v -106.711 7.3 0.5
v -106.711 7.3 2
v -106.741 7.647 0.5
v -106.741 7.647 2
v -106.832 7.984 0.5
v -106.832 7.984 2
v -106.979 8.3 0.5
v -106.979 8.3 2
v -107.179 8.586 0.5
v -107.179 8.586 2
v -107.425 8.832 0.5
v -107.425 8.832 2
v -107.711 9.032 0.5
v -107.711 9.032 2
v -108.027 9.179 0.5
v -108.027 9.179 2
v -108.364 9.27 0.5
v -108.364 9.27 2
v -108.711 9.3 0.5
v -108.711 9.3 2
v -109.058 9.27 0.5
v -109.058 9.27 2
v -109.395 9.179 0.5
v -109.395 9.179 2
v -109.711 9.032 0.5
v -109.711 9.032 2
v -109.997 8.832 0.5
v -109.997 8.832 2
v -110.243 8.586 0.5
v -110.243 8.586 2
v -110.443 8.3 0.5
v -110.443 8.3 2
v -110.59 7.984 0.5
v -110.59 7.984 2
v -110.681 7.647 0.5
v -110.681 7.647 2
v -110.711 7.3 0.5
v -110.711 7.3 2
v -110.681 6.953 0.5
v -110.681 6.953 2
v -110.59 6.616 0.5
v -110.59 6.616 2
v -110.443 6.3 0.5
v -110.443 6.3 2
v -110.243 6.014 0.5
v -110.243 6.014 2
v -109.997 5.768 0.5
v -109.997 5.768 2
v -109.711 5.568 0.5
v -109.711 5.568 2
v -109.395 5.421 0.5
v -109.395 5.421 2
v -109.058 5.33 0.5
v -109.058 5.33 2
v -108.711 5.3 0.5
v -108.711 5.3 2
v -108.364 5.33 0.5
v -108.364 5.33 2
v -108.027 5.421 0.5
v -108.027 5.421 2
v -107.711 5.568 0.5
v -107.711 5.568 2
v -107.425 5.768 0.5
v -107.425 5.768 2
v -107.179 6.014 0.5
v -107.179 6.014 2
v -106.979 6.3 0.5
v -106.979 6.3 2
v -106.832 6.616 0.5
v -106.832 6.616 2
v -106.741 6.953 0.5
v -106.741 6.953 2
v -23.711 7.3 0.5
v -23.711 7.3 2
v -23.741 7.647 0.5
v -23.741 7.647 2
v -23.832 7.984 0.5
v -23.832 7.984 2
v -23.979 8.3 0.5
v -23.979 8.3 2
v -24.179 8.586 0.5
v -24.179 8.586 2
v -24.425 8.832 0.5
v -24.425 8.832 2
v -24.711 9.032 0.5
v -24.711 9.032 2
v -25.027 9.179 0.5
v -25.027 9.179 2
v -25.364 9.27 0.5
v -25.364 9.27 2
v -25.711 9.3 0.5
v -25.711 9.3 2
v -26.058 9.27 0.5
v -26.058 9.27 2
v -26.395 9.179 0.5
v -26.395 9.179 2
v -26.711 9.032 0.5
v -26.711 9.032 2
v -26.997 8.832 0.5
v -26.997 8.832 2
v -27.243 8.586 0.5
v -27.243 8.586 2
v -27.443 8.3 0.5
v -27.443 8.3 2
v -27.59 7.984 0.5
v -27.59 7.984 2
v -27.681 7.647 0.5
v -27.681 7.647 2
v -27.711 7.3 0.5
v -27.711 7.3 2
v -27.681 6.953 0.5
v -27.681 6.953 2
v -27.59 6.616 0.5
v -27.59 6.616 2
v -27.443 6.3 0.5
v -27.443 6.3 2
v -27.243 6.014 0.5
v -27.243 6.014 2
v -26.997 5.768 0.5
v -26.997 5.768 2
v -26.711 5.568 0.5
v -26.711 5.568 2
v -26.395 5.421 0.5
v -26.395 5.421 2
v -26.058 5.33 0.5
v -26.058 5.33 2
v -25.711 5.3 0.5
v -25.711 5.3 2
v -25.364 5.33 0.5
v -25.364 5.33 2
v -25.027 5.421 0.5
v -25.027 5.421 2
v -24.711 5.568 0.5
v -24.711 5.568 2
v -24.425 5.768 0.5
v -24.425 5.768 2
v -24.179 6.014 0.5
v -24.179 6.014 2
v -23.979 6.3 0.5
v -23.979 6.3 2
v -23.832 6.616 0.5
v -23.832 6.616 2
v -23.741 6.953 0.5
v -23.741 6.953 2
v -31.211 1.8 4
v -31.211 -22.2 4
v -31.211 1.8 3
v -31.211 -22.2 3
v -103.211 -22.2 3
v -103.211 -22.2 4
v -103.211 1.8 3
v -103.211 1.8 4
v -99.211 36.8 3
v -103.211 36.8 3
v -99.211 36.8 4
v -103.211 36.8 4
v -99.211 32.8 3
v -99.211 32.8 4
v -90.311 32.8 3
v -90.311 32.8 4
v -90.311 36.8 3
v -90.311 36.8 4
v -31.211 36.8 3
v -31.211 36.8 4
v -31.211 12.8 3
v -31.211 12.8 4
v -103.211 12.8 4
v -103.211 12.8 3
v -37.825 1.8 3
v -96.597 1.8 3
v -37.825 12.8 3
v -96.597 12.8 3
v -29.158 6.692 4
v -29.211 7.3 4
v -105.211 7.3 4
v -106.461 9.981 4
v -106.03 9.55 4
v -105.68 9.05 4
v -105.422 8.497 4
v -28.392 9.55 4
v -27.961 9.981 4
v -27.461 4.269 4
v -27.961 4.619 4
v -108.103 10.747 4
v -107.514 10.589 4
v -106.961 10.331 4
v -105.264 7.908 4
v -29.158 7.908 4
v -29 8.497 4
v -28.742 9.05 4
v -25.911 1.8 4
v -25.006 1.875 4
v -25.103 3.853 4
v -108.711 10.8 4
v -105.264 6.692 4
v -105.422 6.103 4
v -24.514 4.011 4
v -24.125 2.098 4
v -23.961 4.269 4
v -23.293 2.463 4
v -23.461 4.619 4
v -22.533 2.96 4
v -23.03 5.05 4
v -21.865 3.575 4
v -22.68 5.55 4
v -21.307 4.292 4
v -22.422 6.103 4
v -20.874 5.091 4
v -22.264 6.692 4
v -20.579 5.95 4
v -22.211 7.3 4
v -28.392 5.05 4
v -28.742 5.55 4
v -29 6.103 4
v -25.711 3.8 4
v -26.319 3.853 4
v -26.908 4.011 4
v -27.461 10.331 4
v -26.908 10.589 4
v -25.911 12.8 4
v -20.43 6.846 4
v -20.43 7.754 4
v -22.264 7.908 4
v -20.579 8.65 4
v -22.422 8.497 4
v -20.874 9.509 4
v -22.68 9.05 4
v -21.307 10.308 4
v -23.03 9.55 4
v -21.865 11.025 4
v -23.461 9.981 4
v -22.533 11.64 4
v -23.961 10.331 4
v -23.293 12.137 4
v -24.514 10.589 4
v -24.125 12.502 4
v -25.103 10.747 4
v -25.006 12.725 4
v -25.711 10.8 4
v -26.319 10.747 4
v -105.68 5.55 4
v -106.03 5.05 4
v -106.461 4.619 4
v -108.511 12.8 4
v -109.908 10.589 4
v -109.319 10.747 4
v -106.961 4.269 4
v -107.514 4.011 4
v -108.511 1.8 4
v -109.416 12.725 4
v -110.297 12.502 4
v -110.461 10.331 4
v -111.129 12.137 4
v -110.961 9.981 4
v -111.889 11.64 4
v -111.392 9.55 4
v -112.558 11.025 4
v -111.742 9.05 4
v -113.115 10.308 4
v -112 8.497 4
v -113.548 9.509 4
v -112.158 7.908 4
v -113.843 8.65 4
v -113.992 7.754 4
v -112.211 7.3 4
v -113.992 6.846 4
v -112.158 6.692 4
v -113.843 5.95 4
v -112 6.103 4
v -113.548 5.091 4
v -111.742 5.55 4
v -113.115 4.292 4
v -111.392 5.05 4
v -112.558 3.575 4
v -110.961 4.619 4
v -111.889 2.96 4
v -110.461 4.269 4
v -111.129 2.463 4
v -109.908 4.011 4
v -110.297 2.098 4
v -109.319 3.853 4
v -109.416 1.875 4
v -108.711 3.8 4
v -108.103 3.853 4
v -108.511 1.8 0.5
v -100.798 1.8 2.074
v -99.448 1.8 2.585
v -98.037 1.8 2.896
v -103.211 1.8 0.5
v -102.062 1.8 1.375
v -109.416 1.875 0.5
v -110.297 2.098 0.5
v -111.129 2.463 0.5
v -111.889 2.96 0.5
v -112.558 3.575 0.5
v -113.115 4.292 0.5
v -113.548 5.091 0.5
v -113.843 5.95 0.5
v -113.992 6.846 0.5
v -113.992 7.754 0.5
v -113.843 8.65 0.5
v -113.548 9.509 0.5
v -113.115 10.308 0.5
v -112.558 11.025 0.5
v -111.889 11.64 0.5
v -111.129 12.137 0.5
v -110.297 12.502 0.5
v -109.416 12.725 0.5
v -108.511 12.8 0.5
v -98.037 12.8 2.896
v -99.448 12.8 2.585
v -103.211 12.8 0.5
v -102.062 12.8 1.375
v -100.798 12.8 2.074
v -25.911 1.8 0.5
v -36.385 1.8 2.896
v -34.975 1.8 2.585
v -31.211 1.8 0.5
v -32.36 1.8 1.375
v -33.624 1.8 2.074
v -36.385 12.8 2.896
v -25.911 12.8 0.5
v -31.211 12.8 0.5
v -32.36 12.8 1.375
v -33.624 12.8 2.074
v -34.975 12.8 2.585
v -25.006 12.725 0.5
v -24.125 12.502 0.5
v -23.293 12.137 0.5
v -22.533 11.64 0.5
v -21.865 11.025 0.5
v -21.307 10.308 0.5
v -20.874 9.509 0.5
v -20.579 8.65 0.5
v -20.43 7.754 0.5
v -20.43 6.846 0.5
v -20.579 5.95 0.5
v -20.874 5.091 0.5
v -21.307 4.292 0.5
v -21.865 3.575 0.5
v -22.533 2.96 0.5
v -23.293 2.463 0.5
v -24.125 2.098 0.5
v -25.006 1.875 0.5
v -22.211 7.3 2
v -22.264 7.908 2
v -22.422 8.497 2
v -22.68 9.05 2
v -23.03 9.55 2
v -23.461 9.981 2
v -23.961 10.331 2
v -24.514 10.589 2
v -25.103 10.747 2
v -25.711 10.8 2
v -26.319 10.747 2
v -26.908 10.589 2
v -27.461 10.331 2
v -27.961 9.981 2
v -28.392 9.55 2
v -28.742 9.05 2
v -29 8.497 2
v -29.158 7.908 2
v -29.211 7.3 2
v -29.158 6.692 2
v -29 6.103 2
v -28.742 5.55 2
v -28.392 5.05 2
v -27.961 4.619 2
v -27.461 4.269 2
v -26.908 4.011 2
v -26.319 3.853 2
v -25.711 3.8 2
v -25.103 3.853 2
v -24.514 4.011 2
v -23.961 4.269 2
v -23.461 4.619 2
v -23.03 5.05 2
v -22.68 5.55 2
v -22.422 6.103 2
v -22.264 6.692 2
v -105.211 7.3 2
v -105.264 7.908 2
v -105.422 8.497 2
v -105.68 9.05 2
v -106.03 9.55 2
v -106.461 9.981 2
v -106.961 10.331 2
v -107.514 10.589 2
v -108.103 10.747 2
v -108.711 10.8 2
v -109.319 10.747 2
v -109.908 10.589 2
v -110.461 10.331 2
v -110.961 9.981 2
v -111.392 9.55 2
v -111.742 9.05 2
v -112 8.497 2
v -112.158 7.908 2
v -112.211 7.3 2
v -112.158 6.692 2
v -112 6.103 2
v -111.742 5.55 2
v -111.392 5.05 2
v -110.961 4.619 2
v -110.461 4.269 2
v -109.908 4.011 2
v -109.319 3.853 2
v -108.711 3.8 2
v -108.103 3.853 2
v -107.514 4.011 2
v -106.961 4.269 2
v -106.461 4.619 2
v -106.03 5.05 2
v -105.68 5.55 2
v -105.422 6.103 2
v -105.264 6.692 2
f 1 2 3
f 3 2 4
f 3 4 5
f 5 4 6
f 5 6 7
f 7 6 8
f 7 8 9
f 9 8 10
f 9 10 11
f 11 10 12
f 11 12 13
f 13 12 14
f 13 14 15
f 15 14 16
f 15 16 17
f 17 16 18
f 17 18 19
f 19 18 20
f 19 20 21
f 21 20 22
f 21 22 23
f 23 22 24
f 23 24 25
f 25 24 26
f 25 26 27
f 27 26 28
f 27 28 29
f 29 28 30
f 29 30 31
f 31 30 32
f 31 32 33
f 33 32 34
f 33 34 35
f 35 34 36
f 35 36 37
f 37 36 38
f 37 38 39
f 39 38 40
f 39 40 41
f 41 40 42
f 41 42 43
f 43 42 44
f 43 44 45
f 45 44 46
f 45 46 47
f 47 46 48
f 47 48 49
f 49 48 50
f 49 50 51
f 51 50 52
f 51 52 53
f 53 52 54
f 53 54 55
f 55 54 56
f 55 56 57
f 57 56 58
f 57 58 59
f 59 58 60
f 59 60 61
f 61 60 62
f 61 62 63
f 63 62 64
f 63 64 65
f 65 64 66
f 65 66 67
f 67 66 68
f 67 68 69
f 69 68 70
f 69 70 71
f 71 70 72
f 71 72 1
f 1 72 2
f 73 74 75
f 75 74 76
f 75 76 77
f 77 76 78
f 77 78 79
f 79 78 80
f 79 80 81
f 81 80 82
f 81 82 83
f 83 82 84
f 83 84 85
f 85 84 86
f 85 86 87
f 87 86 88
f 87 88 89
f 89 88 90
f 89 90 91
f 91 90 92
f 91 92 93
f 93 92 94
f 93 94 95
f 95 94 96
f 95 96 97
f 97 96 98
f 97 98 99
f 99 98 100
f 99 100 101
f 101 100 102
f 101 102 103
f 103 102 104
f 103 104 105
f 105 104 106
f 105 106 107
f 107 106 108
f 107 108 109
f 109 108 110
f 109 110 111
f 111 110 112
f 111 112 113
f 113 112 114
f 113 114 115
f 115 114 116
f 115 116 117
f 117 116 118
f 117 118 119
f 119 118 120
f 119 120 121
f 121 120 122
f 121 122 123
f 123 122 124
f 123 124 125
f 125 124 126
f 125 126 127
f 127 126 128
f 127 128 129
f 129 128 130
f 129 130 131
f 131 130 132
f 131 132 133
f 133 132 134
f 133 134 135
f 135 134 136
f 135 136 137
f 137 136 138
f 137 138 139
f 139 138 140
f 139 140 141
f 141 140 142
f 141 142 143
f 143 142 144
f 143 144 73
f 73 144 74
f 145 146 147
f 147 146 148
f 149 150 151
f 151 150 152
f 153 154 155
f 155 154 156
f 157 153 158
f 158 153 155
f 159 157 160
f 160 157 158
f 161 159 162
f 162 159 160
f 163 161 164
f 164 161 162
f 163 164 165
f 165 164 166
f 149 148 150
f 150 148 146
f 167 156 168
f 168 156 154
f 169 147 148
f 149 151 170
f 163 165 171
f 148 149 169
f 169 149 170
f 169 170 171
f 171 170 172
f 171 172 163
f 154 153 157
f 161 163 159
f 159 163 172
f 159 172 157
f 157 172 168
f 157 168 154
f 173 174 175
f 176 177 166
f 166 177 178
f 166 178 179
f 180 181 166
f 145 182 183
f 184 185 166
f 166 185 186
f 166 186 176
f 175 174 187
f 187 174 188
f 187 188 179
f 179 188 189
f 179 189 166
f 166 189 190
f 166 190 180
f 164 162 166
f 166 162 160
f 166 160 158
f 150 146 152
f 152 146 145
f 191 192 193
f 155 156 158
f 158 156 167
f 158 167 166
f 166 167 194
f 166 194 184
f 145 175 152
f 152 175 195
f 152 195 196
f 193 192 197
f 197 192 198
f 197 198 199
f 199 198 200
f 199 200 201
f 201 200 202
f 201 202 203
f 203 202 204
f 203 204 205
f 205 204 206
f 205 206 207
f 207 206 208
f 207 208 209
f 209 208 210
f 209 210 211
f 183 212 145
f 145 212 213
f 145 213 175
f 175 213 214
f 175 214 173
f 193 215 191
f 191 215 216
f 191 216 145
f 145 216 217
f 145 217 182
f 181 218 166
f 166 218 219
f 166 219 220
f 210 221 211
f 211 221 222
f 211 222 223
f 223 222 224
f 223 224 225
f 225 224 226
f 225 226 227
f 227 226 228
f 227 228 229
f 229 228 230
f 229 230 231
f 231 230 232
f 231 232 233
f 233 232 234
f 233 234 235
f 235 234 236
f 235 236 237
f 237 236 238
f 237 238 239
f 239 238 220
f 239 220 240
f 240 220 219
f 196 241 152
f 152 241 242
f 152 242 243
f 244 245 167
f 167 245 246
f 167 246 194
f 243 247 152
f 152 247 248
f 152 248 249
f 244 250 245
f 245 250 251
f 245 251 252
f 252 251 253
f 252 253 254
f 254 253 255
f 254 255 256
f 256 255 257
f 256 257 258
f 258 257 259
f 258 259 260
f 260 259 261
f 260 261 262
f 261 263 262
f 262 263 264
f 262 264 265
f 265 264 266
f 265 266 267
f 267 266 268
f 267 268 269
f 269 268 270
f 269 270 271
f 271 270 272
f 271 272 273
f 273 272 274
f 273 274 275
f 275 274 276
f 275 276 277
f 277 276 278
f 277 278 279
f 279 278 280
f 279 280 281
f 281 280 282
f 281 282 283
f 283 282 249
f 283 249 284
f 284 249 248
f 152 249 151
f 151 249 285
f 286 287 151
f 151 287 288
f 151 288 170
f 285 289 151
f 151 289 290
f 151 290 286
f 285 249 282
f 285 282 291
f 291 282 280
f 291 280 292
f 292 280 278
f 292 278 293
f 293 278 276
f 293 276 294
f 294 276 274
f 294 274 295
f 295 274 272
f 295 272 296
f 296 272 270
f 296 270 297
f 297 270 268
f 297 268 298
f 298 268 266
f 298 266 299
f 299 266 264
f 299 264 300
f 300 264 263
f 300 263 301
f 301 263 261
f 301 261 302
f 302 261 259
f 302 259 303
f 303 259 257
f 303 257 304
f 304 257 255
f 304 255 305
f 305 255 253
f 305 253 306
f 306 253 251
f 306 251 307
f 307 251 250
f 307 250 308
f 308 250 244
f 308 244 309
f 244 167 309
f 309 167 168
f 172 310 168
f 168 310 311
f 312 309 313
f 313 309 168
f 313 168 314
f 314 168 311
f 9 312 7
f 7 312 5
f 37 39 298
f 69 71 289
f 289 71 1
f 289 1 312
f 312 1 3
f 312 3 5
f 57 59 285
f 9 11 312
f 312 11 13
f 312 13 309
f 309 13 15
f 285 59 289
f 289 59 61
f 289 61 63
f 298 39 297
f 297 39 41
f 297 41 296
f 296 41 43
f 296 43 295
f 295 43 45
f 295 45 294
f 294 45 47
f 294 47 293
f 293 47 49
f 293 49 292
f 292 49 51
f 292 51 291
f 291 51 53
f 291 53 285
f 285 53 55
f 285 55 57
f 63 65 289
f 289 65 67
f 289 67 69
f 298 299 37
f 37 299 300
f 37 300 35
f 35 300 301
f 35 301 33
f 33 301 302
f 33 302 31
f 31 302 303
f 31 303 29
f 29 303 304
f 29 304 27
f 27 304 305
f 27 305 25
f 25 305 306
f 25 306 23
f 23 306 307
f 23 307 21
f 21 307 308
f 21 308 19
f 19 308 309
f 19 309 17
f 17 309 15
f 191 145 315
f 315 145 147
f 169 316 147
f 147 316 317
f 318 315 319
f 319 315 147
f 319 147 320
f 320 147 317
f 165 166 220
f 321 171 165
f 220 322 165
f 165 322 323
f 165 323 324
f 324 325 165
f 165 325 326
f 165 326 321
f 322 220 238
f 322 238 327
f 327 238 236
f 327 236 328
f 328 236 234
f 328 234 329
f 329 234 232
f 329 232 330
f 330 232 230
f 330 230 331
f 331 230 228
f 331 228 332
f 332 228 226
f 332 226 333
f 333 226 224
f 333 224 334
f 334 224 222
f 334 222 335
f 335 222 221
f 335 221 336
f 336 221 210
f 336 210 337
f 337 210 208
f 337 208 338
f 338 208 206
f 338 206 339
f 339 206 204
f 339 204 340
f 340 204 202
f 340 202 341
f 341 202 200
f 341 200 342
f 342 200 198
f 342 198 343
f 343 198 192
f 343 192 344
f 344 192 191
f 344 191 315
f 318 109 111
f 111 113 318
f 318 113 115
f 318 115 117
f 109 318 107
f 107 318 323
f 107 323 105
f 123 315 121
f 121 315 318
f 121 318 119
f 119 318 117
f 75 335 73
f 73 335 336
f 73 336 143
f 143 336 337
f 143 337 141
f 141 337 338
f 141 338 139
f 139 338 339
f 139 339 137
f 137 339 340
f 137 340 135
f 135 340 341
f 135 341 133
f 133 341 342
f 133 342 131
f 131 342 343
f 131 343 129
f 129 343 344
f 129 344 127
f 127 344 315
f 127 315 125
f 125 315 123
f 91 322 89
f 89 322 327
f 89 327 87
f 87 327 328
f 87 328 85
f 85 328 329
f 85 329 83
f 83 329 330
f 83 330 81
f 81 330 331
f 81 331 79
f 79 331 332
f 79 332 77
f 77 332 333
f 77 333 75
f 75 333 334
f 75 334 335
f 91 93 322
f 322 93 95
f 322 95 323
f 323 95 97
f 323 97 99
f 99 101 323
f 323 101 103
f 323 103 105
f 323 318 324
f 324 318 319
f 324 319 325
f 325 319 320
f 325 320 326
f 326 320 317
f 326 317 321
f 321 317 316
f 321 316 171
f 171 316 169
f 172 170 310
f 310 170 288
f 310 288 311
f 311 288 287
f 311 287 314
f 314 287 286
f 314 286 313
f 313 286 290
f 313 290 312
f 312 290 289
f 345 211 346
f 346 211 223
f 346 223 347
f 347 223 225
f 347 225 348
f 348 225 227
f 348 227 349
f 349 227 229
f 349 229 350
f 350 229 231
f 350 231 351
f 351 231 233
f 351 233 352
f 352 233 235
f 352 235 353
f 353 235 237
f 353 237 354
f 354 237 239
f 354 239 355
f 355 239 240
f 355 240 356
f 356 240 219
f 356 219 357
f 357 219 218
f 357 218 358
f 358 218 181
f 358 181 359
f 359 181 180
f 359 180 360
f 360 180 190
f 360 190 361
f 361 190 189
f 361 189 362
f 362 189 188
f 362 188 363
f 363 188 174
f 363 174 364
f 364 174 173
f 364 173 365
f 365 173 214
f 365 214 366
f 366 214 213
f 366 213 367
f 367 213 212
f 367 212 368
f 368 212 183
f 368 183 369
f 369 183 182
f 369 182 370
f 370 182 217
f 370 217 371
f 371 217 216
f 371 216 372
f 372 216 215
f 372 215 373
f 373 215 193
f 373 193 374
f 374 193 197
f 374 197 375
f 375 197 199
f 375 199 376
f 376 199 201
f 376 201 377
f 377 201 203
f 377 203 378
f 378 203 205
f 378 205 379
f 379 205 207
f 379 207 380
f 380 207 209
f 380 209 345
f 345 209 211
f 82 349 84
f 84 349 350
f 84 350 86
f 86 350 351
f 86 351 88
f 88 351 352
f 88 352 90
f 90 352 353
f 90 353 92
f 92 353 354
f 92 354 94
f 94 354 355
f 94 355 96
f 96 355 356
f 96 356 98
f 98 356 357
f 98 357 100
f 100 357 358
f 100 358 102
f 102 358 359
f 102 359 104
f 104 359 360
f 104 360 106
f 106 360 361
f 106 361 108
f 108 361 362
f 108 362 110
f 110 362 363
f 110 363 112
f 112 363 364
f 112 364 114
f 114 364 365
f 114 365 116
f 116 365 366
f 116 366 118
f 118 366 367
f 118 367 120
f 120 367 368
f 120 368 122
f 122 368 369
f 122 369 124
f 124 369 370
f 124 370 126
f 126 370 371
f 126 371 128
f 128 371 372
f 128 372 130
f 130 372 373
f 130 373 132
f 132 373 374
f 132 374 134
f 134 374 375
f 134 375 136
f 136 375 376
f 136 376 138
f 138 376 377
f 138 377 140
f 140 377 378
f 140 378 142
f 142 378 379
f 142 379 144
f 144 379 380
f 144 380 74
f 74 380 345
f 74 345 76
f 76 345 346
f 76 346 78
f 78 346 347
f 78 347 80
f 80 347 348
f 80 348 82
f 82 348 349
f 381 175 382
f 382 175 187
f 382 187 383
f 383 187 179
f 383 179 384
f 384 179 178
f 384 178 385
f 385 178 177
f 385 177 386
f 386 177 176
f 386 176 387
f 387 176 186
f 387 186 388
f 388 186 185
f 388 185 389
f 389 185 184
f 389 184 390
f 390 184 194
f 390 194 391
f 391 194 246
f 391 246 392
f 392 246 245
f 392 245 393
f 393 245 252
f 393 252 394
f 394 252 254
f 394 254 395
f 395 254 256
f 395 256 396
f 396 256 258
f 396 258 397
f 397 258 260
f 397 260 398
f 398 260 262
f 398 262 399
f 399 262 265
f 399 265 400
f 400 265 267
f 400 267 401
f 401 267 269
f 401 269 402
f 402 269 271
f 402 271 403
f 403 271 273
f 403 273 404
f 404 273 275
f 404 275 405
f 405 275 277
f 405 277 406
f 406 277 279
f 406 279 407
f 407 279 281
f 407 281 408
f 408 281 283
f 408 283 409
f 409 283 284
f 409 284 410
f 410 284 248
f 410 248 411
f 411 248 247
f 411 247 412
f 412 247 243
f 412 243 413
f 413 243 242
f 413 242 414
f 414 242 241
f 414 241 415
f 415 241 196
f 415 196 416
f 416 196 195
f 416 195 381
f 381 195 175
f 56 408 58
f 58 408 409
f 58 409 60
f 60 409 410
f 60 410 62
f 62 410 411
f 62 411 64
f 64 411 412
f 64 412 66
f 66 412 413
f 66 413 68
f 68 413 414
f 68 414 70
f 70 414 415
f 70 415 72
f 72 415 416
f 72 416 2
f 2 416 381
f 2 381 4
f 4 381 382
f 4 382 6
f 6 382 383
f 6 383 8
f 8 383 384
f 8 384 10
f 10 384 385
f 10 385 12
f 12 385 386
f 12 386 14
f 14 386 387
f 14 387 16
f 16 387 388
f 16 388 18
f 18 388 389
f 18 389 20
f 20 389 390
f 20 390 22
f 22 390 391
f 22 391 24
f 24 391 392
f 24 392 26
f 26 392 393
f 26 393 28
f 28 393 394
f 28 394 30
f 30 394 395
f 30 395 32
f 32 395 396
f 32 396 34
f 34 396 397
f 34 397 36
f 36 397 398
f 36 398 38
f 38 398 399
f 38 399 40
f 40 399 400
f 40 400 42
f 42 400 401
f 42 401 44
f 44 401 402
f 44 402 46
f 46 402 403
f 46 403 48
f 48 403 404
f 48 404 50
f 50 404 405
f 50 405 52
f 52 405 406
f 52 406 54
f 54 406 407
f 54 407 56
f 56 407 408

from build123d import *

# Parameters (mm, degrees)
BOSS_EXTRUDE1_START = 3
BOSS_EXTRUDE1_DEPTH = 1
BOSS_EXTRUDE2_START = 0.5
SKETCH1_3_R         = 2
BOSS_EXTRUDE2_DEPTH = 3.5
FILLET1_R           = 10
SKETCH2_R           = 3.5
CUT_EXTRUDE1_DEPTH  = 2


with BuildPart() as part:
    # Sketch1 → Boss-Extrude1 (new body)
    with BuildSketch(Plane.XY.offset(BOSS_EXTRUDE1_START)):
        Polygon((-103.211042913, -22.2), (-31.211042913, -22.2), (-31.211042913, 36.8), (-90.311042913, 36.8), (-90.311042913, 32.8), (-99.211042913, 32.8), (-99.211042913, 36.8), (-103.211042913, 36.8), align=None)
    extrude(amount=BOSS_EXTRUDE1_DEPTH)

    # Sketch1<3> → Boss-Extrude2 (add)
    # profile 1 of 2: a face of its own
    with BuildSketch(Plane.XY.offset(BOSS_EXTRUDE2_START)):
        with BuildLine():
            Line((-108.511042913, 1.8), (-103.211042913, 1.8))
            Line((-103.211042913, 1.8), (-103.211042913, 12.8))
            Line((-103.211042913, 12.8), (-108.511042913, 12.8))
            ThreePointArc((-108.511042913, 12.8), (-114.011042913, 7.3), (-108.511042913, 1.8))
        make_face()
        with Locations((-108.711042913, 7.3)):
            Circle(SKETCH1_3_R, mode=Mode.SUBTRACT)
    # profile 2 of 2: a face of its own
    with BuildSketch(Plane.XY.offset(BOSS_EXTRUDE2_START)):
        with BuildLine():
            Line((-31.211042913, 12.8), (-31.211042913, 1.8))
            Line((-31.211042913, 1.8), (-25.911042913, 1.8))
            ThreePointArc((-25.911042913, 1.8), (-20.411042913, 7.3), (-25.911042913, 12.8))
            Line((-25.911042913, 12.8), (-31.211042913, 12.8))
        make_face()
        with Locations((-25.711042913, 7.3)):
            Circle(SKETCH1_3_R, mode=Mode.SUBTRACT)
    extrude(amount=BOSS_EXTRUDE2_DEPTH)

    # Fillet1
    # the kernel refuses this fillet: 10 mm, written as the material it adds along each edge
    with BuildSketch(Plane(origin=(-31.211042913, 1.8, 3), x_dir=(-1, 0, 0), z_dir=(0, 1, 0)), Plane(origin=(-103.211042913, 12.8, 3), x_dir=(1, 0, 0), z_dir=(0, -1, 0))) as fillet1_piece_1:
        with BuildLine():
            CenterArc((6.614378278, -10), FILLET1_R, 90, 41.409622109)
            Line((0, -2.5), (0, 0))
            Line((0, 0), (6.614378278, 0))
        make_face()
    extrude(amount=11)

    # Sketch2 → Cut-Extrude1 (cut)
    with BuildSketch(Plane.XY.offset(4)):
        with Locations((-108.711042913, 7.3)):
            Circle(SKETCH2_R)
        with Locations((-25.711042913, 7.3)):
            Circle(SKETCH2_R)
    extrude(amount=-CUT_EXTRUDE1_DEPTH, mode=Mode.SUBTRACT)


solid = part.part
